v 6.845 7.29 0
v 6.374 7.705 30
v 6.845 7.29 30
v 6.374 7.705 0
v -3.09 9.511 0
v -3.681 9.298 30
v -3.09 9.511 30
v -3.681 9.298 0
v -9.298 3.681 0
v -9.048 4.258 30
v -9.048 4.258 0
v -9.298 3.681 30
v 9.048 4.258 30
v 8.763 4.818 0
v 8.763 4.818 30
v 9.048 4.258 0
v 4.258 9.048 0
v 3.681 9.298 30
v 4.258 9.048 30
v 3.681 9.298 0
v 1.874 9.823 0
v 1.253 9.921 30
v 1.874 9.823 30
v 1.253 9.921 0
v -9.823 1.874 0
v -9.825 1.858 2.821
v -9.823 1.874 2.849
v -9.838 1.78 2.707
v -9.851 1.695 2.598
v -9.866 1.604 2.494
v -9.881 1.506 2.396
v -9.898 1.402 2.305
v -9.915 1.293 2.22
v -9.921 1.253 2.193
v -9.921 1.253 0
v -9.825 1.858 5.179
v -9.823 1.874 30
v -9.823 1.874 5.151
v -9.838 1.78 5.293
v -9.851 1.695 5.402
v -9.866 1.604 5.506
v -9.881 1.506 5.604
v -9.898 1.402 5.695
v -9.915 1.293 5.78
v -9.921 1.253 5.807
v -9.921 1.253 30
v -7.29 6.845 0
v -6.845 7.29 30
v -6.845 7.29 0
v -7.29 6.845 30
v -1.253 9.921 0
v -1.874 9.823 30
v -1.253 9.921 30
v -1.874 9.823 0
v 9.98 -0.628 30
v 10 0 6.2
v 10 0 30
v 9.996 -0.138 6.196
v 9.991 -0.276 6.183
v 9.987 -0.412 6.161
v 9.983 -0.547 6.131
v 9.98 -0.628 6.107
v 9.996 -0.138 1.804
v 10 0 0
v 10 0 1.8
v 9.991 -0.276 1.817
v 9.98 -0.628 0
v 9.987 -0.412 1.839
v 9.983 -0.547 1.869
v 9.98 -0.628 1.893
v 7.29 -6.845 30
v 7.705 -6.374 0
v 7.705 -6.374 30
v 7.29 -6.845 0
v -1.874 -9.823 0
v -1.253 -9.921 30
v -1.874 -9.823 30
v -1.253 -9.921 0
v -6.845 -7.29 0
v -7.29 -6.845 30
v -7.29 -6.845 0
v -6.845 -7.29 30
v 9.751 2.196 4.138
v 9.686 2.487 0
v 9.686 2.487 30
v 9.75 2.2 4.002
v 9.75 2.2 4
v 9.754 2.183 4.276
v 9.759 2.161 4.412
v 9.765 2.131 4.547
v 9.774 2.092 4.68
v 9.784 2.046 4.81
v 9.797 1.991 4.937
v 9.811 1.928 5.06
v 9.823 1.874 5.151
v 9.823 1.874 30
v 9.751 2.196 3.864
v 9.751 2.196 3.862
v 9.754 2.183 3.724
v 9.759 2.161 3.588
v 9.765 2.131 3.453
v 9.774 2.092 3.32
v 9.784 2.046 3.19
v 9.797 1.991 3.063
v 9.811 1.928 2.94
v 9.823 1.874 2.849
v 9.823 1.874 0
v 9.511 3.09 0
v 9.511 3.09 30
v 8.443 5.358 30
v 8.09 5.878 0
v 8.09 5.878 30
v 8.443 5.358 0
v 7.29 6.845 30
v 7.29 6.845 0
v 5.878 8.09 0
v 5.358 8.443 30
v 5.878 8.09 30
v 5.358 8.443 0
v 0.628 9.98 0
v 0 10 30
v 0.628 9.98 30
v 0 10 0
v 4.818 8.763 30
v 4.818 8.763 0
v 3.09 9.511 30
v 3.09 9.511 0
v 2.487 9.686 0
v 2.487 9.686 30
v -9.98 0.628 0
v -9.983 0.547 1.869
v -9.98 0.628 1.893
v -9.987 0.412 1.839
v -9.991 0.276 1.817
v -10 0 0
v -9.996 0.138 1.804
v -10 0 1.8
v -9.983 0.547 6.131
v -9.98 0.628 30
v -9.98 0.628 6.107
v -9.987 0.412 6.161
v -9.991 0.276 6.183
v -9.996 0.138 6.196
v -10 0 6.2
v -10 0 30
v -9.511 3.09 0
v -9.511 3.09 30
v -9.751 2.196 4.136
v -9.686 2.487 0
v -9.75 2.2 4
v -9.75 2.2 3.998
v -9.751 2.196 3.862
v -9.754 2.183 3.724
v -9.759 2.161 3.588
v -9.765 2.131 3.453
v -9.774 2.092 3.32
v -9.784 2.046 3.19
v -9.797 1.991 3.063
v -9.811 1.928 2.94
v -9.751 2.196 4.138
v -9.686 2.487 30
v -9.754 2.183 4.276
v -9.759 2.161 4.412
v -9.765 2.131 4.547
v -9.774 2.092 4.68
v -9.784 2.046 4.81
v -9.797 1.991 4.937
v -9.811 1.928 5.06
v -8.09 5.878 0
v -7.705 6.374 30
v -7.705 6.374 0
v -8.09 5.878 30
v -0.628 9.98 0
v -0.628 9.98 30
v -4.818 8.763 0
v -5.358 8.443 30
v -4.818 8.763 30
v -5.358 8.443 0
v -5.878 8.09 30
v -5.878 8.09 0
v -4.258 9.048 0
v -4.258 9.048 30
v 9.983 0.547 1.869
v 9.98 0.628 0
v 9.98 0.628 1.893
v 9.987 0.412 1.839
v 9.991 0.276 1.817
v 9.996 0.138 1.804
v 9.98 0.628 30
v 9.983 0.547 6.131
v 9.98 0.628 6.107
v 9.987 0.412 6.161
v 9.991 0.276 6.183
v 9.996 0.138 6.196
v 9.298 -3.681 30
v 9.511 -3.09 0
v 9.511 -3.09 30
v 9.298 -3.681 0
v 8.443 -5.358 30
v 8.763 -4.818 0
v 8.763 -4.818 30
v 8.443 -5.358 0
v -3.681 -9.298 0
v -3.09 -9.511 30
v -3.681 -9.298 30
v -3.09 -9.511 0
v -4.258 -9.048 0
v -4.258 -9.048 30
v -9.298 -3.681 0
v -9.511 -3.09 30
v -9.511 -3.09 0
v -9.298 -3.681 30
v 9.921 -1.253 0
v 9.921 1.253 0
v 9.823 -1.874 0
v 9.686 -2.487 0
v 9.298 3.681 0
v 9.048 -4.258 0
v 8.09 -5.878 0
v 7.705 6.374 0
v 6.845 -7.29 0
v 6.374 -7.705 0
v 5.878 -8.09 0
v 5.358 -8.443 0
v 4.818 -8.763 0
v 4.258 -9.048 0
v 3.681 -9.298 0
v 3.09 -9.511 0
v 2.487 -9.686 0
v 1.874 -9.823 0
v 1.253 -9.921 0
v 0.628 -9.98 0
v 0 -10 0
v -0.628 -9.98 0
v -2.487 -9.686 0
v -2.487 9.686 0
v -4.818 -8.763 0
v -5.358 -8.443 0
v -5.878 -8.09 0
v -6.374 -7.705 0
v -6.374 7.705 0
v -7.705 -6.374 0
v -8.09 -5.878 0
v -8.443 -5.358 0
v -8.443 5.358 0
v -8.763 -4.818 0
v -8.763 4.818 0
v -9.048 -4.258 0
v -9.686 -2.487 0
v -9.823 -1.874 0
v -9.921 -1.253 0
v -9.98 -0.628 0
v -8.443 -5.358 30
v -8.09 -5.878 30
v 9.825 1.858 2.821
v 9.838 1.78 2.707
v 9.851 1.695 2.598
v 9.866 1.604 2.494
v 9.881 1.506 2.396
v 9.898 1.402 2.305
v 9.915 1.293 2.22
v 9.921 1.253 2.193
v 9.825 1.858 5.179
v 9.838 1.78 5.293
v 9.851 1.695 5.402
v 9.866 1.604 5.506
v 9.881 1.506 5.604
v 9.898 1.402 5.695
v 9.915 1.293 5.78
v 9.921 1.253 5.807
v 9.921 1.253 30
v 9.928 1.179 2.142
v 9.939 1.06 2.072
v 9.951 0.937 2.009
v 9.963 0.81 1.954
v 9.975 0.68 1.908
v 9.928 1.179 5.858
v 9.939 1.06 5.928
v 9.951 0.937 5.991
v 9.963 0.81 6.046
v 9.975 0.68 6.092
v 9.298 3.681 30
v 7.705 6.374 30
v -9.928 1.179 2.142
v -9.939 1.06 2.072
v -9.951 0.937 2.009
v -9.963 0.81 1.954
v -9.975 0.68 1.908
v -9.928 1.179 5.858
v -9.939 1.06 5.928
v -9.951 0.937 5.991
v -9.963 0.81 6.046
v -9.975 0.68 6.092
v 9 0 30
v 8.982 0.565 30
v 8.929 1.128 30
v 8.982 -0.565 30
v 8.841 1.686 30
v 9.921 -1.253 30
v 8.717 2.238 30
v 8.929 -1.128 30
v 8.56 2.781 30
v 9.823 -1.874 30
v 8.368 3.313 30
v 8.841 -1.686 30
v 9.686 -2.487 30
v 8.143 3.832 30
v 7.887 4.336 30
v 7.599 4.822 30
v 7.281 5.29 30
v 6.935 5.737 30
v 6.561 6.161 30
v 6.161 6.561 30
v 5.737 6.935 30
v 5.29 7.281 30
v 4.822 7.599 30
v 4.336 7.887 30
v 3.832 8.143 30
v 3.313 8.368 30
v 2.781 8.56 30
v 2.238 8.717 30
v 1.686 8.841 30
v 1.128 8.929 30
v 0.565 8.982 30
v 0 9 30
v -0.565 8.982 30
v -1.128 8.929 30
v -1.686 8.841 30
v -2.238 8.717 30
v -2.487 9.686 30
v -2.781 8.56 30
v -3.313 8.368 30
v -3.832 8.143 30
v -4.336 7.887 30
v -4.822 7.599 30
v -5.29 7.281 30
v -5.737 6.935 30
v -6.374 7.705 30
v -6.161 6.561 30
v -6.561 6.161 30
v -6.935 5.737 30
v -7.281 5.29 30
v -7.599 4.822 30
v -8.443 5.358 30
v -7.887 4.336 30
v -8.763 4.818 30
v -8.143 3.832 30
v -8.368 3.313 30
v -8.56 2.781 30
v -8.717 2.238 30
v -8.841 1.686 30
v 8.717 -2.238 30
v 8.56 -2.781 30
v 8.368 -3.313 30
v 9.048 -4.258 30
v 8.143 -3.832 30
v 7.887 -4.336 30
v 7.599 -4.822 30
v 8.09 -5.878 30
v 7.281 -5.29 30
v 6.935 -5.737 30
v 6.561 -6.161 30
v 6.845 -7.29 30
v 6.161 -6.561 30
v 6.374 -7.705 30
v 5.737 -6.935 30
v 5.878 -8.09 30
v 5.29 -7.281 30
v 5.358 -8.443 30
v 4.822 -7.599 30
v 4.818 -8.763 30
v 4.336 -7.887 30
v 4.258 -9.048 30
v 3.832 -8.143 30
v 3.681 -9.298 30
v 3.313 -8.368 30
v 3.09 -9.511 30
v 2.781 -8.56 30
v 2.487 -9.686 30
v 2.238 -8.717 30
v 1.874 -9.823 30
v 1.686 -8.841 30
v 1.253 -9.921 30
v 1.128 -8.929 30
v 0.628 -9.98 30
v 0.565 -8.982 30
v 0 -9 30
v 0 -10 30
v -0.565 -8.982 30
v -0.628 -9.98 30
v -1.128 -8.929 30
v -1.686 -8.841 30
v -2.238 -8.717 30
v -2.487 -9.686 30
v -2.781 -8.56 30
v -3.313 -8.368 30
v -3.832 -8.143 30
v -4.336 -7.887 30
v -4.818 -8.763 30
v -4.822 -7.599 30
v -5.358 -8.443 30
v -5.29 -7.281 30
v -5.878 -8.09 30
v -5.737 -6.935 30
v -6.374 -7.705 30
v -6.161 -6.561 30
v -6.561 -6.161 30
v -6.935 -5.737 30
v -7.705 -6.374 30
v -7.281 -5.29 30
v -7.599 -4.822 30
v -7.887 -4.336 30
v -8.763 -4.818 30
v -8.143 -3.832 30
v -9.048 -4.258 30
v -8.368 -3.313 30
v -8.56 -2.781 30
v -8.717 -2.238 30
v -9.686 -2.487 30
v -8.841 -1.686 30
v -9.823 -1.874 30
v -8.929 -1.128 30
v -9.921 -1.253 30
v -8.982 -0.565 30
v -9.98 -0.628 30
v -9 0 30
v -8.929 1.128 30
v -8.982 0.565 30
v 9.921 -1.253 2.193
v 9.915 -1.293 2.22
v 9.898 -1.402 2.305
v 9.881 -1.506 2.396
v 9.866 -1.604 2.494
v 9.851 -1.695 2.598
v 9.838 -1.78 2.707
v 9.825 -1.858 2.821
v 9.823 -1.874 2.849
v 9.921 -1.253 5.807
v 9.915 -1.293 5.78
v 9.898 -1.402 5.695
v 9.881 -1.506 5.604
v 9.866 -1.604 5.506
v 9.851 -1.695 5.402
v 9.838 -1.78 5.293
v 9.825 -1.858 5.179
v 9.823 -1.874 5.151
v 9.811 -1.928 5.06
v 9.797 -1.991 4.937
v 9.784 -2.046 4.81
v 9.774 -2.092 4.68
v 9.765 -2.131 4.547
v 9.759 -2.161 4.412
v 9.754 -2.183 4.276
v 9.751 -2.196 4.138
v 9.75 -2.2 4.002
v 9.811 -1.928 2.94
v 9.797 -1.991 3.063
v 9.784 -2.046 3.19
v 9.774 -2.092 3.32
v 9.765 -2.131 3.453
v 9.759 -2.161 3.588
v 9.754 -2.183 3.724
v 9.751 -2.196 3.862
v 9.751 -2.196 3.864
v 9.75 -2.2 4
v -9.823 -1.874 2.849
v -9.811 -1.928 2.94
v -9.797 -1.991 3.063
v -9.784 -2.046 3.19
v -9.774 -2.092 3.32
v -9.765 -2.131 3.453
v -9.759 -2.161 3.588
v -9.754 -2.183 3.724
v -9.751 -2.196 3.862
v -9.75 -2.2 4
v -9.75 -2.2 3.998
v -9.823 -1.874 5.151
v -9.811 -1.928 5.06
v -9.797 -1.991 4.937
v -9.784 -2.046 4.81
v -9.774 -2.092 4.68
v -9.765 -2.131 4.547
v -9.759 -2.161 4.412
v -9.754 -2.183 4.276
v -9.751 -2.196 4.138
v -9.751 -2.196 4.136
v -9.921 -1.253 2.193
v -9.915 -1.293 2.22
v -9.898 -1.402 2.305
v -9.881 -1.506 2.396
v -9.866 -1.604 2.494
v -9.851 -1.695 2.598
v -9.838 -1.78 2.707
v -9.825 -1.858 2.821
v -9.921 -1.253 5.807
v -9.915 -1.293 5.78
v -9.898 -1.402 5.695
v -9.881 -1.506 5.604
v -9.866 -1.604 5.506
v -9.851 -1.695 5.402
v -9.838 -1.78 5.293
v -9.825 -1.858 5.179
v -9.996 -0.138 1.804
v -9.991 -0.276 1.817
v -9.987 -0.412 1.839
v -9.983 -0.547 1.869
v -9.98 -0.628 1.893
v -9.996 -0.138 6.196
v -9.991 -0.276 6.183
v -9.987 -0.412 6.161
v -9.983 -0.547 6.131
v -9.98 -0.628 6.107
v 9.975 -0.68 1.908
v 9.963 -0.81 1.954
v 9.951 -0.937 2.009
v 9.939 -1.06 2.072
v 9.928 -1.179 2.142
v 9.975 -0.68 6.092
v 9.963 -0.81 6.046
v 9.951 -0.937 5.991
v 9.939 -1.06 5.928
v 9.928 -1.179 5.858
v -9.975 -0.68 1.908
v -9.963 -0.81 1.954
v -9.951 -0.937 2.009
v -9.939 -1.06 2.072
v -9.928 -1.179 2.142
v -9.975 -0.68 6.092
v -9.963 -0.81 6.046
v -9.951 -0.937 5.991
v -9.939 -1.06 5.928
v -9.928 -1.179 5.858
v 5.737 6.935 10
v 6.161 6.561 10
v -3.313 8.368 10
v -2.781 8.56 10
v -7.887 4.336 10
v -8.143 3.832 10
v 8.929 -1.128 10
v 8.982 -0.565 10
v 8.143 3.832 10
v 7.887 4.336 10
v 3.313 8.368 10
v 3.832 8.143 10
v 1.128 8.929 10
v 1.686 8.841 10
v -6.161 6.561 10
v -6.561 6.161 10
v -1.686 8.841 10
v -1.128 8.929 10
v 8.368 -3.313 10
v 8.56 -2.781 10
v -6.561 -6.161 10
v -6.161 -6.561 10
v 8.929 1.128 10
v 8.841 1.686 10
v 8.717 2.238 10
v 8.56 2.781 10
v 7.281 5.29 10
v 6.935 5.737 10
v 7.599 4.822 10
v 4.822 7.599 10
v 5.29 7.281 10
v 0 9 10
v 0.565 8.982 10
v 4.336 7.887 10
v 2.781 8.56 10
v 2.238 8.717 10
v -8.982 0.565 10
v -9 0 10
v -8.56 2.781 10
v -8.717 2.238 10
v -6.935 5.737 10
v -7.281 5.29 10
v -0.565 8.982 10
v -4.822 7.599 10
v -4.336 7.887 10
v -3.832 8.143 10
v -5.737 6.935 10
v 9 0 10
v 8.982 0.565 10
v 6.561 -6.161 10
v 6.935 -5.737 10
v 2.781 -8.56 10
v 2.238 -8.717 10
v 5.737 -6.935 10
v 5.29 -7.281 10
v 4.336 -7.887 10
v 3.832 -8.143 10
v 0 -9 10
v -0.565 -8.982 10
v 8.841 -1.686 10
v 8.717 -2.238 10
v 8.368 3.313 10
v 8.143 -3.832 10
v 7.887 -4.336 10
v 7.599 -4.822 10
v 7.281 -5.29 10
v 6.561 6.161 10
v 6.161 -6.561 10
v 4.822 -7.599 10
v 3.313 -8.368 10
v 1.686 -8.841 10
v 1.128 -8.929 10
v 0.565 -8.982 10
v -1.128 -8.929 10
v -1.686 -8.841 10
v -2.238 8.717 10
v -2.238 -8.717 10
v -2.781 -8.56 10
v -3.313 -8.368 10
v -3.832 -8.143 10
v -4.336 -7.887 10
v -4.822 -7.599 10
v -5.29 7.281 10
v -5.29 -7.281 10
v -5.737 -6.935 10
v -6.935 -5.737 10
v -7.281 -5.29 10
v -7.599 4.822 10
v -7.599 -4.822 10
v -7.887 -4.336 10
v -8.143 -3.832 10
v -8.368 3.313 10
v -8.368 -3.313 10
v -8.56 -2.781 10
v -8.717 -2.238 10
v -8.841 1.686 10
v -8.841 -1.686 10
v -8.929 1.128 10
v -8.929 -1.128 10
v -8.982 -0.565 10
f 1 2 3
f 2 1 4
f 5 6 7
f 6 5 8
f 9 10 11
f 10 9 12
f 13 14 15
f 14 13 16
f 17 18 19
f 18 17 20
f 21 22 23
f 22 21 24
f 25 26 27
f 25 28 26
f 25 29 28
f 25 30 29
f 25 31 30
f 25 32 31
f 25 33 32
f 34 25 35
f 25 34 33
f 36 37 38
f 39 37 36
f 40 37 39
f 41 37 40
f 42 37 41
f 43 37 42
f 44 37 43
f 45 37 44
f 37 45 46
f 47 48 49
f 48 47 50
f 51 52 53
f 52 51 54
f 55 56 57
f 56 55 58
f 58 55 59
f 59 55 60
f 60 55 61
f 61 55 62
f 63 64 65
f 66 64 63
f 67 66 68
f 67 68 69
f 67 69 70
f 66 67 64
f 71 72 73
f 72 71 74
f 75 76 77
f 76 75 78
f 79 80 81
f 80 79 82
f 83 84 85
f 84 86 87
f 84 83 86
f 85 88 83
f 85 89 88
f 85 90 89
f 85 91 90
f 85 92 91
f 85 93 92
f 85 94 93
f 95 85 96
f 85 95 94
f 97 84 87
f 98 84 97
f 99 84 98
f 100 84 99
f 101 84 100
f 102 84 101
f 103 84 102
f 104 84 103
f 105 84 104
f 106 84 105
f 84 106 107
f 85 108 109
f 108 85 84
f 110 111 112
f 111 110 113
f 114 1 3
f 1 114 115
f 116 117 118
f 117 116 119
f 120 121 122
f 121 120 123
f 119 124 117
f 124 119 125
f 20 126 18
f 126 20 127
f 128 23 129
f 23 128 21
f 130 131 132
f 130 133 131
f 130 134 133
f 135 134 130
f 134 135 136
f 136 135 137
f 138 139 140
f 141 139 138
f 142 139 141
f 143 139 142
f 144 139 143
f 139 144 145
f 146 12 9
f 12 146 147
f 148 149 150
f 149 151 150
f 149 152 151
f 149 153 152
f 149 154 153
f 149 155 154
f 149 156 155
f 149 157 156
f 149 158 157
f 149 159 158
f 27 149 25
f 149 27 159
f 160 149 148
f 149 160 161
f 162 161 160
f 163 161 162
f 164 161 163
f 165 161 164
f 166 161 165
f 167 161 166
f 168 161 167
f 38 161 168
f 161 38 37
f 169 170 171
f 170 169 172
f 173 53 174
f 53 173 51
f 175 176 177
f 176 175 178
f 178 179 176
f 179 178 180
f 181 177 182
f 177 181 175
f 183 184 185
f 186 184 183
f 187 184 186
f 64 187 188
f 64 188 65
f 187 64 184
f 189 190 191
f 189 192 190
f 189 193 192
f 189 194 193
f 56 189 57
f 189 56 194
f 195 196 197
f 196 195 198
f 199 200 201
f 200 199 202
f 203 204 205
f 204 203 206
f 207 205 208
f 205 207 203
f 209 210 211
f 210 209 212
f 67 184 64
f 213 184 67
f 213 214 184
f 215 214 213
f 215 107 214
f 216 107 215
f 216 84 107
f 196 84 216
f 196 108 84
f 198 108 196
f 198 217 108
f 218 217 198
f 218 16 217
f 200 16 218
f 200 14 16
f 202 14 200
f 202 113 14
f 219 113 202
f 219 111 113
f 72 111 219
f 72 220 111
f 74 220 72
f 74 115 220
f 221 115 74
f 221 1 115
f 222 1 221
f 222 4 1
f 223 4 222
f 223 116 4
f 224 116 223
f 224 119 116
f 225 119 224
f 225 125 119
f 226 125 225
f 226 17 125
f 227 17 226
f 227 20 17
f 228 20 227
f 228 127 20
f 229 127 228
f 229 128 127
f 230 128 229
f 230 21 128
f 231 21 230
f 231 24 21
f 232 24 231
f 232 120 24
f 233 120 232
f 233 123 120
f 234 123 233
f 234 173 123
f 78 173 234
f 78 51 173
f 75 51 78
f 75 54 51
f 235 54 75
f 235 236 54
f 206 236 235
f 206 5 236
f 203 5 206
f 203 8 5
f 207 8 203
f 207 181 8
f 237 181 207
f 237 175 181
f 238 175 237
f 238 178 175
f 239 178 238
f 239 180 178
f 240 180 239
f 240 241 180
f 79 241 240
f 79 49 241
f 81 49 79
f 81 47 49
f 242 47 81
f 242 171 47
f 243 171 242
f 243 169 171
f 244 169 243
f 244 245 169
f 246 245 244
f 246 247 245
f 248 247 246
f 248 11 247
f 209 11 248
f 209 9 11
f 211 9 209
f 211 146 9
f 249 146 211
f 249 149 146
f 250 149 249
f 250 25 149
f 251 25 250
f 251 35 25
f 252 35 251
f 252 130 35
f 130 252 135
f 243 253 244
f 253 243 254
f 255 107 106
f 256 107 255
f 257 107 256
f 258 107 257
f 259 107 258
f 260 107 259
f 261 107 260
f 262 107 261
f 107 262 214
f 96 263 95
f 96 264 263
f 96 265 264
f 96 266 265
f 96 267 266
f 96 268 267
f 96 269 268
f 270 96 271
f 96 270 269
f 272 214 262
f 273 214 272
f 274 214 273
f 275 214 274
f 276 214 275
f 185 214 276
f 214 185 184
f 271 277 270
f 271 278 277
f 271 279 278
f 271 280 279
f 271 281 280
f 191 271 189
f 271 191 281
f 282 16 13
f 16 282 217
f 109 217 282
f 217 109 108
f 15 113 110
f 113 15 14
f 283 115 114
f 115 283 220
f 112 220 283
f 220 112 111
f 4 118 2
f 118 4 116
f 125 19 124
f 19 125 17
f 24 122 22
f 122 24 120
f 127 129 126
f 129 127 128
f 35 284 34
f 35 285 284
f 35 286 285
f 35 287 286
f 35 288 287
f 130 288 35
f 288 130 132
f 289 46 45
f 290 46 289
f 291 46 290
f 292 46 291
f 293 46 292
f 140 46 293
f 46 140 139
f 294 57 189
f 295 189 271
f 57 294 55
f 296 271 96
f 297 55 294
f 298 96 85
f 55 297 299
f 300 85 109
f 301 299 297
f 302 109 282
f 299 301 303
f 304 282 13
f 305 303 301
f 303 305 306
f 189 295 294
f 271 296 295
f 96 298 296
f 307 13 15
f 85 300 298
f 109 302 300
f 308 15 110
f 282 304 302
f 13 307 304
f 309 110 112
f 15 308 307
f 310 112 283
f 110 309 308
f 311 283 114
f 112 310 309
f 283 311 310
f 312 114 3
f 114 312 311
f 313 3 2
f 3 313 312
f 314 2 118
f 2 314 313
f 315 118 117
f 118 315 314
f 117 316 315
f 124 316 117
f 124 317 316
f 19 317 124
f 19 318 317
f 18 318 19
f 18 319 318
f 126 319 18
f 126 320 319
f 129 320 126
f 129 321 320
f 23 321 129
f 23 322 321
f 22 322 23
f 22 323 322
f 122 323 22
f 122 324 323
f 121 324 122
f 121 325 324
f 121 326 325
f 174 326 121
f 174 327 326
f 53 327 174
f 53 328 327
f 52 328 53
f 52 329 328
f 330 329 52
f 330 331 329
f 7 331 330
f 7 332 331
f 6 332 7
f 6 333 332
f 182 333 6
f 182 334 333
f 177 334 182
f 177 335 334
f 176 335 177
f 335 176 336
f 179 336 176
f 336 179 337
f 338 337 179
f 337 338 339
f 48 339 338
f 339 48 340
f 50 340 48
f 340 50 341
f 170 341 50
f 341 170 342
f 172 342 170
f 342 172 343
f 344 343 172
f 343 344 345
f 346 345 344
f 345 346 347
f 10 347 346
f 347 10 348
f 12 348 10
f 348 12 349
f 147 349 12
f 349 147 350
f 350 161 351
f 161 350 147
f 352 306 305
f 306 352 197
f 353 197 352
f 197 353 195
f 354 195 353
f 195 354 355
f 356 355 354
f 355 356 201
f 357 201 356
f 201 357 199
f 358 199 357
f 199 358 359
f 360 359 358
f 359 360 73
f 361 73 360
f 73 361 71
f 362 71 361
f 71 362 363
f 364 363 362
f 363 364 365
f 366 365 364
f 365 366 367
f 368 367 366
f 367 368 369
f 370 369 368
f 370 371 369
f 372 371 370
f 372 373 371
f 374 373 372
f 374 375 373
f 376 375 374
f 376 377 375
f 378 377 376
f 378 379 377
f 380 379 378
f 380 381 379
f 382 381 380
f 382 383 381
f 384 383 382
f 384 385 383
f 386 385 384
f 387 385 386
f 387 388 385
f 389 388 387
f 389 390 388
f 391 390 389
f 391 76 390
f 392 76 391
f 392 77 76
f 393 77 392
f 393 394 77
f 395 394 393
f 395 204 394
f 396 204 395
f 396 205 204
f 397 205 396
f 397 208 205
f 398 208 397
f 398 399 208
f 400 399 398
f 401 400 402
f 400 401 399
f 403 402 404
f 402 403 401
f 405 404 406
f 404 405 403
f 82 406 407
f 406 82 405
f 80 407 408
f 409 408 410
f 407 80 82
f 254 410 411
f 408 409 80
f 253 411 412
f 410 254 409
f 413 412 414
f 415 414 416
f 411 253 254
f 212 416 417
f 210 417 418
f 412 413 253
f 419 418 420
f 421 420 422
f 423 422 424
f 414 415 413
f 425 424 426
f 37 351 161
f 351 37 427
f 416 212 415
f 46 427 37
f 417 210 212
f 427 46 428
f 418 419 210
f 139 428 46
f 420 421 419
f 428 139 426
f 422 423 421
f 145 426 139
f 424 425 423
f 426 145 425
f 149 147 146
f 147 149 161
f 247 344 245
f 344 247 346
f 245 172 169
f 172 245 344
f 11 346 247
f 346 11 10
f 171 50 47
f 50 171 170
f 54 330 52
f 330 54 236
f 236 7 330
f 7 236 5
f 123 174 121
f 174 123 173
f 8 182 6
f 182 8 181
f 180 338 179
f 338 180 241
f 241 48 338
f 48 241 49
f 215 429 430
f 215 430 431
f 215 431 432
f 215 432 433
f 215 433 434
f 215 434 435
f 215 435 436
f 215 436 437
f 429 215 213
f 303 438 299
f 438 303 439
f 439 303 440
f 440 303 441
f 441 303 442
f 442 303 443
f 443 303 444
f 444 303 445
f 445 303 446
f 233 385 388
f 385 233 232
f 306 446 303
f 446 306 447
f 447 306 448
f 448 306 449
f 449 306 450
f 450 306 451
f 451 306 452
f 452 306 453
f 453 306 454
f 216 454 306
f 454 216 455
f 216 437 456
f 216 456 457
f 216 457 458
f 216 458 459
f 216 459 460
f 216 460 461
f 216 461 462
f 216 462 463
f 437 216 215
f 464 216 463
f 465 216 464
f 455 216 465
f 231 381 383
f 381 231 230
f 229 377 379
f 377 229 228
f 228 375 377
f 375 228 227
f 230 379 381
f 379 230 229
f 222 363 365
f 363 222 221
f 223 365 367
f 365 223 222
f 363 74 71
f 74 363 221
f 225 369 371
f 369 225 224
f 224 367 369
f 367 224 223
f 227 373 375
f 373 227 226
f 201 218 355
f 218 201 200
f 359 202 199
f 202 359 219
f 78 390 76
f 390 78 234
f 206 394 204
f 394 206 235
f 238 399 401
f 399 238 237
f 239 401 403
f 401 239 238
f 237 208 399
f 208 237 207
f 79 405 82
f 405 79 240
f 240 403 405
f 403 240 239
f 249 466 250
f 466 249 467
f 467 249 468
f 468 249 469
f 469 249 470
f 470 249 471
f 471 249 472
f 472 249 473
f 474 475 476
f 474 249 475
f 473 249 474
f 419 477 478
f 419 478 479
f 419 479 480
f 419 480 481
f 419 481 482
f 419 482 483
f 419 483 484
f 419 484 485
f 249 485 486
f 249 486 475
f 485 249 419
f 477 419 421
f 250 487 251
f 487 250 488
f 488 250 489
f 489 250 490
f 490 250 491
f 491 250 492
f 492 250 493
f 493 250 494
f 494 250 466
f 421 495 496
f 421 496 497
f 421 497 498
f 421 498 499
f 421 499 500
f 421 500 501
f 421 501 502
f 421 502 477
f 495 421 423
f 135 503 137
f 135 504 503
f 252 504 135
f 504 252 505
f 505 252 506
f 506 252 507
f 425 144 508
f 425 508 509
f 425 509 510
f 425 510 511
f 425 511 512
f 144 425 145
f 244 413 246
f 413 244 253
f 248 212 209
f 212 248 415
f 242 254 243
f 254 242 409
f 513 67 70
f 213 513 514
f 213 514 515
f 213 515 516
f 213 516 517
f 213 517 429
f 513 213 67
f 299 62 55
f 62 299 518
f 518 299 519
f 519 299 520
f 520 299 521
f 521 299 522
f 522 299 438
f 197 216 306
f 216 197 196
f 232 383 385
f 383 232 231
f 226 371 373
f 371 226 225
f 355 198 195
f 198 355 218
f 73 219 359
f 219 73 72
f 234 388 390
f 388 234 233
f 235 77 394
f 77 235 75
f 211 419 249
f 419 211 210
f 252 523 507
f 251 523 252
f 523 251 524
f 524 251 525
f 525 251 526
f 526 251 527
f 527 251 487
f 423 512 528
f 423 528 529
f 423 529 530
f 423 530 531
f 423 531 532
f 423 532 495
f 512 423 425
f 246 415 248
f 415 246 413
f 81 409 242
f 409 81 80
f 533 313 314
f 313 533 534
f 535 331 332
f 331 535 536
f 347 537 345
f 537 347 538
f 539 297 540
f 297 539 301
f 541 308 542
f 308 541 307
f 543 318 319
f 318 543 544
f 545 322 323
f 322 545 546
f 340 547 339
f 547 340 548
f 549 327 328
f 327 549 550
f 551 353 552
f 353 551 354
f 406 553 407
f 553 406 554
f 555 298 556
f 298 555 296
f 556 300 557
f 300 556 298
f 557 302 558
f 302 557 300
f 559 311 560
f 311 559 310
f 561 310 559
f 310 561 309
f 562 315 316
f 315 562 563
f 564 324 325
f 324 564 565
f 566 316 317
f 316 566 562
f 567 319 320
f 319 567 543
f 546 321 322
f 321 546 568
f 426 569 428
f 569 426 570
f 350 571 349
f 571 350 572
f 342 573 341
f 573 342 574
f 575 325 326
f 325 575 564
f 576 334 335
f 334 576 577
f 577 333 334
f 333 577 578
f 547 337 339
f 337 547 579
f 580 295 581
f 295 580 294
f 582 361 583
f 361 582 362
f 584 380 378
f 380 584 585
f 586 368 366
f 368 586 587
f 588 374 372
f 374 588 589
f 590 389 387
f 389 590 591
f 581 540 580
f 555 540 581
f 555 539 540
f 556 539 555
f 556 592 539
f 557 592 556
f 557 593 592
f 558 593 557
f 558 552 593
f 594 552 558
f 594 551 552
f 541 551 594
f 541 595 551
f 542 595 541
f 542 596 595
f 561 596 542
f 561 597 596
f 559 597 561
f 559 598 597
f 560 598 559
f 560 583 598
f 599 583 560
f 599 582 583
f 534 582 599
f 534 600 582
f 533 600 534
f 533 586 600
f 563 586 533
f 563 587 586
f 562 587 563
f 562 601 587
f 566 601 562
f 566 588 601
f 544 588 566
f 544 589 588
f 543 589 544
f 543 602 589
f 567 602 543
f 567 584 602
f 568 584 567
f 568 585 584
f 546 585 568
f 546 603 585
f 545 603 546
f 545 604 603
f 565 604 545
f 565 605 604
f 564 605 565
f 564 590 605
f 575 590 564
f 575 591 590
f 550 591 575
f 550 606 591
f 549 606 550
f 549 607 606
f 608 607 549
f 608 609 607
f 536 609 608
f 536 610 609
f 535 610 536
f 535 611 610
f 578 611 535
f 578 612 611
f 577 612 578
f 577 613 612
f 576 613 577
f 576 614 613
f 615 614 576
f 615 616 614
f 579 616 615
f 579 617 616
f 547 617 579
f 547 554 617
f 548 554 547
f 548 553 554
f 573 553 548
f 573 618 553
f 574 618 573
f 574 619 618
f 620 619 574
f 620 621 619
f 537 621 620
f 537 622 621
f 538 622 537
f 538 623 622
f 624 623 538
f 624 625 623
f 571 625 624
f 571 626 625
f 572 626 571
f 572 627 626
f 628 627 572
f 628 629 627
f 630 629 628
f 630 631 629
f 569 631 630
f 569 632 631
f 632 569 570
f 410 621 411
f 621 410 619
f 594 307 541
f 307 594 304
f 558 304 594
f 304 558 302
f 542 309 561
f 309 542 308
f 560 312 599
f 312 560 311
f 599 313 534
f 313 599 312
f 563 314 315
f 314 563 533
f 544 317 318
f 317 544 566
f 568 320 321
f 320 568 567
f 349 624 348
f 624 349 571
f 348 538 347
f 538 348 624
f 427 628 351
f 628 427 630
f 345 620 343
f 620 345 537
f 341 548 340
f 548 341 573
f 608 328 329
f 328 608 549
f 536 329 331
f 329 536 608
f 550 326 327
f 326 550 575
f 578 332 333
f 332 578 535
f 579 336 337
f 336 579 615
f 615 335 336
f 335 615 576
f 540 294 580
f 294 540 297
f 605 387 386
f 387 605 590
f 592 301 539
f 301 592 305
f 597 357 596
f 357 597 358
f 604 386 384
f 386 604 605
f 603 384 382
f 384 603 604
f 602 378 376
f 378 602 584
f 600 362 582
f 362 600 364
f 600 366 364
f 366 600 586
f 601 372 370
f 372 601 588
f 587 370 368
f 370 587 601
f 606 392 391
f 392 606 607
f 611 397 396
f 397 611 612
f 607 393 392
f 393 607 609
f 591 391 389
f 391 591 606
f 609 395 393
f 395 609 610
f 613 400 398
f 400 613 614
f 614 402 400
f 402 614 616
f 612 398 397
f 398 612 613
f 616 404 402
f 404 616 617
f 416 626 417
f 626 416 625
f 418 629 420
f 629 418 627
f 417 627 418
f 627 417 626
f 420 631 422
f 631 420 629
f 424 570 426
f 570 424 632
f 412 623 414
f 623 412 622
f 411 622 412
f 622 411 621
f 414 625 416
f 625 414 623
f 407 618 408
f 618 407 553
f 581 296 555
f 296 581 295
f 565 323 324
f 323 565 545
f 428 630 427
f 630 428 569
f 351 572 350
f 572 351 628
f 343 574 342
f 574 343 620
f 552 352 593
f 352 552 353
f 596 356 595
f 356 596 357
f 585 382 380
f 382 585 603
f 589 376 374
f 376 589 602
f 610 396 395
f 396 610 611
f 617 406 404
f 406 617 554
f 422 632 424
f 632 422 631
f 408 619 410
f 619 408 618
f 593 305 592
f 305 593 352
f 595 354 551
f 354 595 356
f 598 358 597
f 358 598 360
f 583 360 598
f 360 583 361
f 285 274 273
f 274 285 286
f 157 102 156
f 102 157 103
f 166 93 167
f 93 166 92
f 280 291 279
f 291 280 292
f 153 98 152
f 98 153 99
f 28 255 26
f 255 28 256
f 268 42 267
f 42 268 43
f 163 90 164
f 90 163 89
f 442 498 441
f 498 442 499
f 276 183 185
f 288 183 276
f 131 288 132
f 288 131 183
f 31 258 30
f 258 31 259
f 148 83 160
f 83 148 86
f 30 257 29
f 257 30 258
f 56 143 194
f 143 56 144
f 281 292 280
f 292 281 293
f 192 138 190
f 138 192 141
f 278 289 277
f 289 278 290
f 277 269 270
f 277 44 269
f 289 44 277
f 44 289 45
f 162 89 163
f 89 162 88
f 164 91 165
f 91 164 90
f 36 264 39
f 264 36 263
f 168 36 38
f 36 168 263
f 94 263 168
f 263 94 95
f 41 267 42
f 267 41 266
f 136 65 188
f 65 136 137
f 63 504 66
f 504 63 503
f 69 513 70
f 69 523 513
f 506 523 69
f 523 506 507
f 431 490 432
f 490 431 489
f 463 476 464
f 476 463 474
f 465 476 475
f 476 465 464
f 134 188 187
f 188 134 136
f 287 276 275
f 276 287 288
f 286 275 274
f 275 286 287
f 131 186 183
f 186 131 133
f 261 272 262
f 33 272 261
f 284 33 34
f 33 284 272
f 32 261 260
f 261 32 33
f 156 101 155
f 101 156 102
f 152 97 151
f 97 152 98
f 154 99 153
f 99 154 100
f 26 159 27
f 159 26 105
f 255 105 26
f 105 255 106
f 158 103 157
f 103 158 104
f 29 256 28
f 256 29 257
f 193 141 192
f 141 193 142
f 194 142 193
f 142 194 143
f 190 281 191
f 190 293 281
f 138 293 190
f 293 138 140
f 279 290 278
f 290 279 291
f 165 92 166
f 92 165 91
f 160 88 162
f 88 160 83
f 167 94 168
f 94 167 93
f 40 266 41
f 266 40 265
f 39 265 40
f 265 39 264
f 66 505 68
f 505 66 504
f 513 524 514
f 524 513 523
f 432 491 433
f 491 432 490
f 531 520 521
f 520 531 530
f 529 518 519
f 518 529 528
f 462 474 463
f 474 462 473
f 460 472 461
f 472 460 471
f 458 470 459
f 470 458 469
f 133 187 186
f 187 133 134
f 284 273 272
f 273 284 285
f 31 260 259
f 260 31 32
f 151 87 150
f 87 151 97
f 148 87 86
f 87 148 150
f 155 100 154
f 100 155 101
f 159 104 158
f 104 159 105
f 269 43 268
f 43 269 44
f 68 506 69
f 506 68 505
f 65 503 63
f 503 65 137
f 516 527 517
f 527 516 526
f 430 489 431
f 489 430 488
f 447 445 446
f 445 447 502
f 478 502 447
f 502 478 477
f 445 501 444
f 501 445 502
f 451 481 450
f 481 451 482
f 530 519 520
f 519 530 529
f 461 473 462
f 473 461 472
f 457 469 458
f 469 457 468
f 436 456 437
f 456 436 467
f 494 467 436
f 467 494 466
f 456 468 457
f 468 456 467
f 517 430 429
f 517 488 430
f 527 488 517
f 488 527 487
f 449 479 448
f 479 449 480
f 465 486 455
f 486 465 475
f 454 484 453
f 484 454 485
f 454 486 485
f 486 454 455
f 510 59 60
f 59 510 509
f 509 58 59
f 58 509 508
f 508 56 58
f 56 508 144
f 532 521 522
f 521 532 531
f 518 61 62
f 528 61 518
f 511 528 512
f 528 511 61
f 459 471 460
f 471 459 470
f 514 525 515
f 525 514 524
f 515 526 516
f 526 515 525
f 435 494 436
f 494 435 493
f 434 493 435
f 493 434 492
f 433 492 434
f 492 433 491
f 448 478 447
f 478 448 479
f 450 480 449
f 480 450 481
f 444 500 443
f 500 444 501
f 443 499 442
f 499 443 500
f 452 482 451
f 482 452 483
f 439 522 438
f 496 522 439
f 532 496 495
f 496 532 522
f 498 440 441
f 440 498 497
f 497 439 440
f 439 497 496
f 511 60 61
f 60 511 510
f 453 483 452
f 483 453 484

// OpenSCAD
$fn=100;

difference() {
    cylinder(r=10,h=30);
    translate([0,0,10])cylinder(r=9,h=20);
    translate([0,0,4])rotate([0,90,0])cylinder(r=2.2,h=20,center=true);
}
